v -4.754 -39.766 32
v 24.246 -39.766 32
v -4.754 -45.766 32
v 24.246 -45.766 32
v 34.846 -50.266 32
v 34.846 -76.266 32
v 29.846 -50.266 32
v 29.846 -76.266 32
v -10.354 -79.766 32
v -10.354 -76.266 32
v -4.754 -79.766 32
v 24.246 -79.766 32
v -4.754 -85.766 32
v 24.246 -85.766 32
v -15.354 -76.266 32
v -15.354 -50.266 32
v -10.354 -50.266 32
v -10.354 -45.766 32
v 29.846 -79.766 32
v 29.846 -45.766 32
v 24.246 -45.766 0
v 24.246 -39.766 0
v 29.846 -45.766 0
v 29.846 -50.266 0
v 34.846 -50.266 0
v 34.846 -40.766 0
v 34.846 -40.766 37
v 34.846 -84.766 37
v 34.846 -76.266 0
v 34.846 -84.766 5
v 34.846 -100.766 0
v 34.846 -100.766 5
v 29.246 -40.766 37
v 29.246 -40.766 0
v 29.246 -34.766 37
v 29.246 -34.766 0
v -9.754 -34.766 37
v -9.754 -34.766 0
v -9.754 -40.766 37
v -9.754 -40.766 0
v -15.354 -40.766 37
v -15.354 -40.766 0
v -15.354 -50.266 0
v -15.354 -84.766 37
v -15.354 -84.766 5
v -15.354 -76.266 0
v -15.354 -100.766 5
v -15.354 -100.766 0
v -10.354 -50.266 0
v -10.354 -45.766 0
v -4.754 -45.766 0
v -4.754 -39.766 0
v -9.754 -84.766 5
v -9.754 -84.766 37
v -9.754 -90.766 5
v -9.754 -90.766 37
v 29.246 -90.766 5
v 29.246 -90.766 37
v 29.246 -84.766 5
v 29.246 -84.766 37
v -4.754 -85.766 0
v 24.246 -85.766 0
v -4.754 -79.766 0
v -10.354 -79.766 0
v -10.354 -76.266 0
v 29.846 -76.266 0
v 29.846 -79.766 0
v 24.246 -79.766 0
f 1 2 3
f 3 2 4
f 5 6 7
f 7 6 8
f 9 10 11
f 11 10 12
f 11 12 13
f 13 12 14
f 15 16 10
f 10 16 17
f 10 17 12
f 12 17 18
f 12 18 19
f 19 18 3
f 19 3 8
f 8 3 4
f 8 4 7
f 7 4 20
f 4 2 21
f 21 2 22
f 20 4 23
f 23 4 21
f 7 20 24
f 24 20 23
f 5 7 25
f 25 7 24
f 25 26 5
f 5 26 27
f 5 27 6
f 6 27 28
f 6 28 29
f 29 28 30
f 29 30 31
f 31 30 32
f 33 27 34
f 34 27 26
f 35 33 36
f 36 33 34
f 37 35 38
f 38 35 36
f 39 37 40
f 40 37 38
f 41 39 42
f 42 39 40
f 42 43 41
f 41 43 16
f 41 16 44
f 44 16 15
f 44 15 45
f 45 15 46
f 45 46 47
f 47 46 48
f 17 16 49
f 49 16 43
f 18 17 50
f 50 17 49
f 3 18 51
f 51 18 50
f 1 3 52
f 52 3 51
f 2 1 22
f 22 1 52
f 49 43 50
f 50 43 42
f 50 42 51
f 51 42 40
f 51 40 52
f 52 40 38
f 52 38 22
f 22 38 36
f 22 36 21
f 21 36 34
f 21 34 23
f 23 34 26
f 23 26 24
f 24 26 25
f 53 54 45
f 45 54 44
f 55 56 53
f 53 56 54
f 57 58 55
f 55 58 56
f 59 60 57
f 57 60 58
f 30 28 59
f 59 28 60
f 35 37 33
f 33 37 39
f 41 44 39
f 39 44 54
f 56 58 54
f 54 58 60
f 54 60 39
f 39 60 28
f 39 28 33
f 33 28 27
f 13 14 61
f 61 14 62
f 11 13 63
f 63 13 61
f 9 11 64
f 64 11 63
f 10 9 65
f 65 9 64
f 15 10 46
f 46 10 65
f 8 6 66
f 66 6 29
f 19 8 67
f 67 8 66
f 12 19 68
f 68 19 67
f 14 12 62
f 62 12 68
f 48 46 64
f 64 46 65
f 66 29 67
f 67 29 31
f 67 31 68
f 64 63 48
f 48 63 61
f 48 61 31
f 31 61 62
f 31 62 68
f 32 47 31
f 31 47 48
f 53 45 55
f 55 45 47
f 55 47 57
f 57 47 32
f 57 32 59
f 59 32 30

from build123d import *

# Parameters (mm, degrees)
BOSS_EXTRUDE1_DEPTH   = 32
BOSS_EXTRUDE1_2_DEPTH = 32
BOSS_EXTRUDE2_DEPTH   = 5
BOSS_EXTRUDE3_DEPTH   = 5


with BuildPart() as part:
    # Sketch1 → Boss-Extrude1 (new body)
    with BuildSketch(Plane(origin=(0, 0, 0), x_dir=(-1, 0, 0), z_dir=(0, 0, 1))):
        Polygon((-29.846050857, 76.265916966), (-29.846050857, 79.765916966), (-24.246050857, 79.765916966), (-24.246050857, 85.765916966), (4.753949143, 85.765916966), (4.753949143, 79.765916966), (10.353949143, 79.765916966), (10.353949143, 76.265916966), (15.353949143, 76.265916966), (15.353949143, 84.765916966), (9.753949143, 84.765916966), (9.753949143, 90.765916966), (-29.246050857, 90.765916966), (-29.246050857, 84.765916966), (-34.846050857, 84.765916966), (-34.846050857, 76.265916966), align=None)
    extrude(amount=BOSS_EXTRUDE1_DEPTH)



with BuildPart() as body_2:
    # Sketch1 → Boss-Extrude1 2 (new body)
    with BuildSketch(Plane(origin=(0, 0, 0), x_dir=(-1, 0, 0), z_dir=(0, 0, 1))):
        Polygon((-29.846050857, 50.265916966), (-29.846050857, 45.765916966), (-24.246050857, 45.765916966), (-24.246050857, 39.765916966), (4.753949143, 39.765916966), (4.753949143, 45.765916966), (10.353949143, 45.765916966), (10.353949143, 50.265916966), (15.353949143, 50.265916966), (15.353949143, 40.765916966), (9.753949143, 40.765916966), (9.753949143, 34.765916966), (-29.246050857, 34.765916966), (-29.246050857, 40.765916966), (-34.846050857, 40.765916966), (-34.846050857, 50.265916966), align=None)
    extrude(amount=BOSS_EXTRUDE1_2_DEPTH)


with BuildPart() as part_1:
    add(part.part)

    add(body_2.part)  # Boss-Extrude2 merges body 2
    # Sketch2 → Boss-Extrude2 (add)
    with BuildSketch(Plane.XY.offset(32)):
        Polygon((-9.753949143, -34.765916966), (-9.753949143, -40.765916966), (-15.353949143, -40.765916966), (-15.353949143, -84.765916966), (-9.753949143, -84.765916966), (-9.753949143, -90.765916966), (29.246050857, -90.765916966), (29.246050857, -84.765916966), (34.846050857, -84.765916966), (34.846050857, -40.765916966), (29.246050857, -40.765916966), (29.246050857, -34.765916966), align=None)
    extrude(amount=BOSS_EXTRUDE2_DEPTH)

    # Sketch4 → Boss-Extrude3 (add)
    with BuildSketch(Plane(origin=(0, 0, 0), x_dir=(-1, 0, 0), z_dir=(0, 0, -1))):
        Polygon((-34.846050857, -84.765916966), (-34.846050857, -100.765916966), (15.353949143, -100.765916966), (15.353949143, -84.765916966), (9.753949143, -84.765916966), (9.753949143, -90.765916966), (-29.246050857, -90.765916966), (-29.246050857, -84.765916966), align=None)
    extrude(amount=-BOSS_EXTRUDE3_DEPTH)


solid = part_1.part
